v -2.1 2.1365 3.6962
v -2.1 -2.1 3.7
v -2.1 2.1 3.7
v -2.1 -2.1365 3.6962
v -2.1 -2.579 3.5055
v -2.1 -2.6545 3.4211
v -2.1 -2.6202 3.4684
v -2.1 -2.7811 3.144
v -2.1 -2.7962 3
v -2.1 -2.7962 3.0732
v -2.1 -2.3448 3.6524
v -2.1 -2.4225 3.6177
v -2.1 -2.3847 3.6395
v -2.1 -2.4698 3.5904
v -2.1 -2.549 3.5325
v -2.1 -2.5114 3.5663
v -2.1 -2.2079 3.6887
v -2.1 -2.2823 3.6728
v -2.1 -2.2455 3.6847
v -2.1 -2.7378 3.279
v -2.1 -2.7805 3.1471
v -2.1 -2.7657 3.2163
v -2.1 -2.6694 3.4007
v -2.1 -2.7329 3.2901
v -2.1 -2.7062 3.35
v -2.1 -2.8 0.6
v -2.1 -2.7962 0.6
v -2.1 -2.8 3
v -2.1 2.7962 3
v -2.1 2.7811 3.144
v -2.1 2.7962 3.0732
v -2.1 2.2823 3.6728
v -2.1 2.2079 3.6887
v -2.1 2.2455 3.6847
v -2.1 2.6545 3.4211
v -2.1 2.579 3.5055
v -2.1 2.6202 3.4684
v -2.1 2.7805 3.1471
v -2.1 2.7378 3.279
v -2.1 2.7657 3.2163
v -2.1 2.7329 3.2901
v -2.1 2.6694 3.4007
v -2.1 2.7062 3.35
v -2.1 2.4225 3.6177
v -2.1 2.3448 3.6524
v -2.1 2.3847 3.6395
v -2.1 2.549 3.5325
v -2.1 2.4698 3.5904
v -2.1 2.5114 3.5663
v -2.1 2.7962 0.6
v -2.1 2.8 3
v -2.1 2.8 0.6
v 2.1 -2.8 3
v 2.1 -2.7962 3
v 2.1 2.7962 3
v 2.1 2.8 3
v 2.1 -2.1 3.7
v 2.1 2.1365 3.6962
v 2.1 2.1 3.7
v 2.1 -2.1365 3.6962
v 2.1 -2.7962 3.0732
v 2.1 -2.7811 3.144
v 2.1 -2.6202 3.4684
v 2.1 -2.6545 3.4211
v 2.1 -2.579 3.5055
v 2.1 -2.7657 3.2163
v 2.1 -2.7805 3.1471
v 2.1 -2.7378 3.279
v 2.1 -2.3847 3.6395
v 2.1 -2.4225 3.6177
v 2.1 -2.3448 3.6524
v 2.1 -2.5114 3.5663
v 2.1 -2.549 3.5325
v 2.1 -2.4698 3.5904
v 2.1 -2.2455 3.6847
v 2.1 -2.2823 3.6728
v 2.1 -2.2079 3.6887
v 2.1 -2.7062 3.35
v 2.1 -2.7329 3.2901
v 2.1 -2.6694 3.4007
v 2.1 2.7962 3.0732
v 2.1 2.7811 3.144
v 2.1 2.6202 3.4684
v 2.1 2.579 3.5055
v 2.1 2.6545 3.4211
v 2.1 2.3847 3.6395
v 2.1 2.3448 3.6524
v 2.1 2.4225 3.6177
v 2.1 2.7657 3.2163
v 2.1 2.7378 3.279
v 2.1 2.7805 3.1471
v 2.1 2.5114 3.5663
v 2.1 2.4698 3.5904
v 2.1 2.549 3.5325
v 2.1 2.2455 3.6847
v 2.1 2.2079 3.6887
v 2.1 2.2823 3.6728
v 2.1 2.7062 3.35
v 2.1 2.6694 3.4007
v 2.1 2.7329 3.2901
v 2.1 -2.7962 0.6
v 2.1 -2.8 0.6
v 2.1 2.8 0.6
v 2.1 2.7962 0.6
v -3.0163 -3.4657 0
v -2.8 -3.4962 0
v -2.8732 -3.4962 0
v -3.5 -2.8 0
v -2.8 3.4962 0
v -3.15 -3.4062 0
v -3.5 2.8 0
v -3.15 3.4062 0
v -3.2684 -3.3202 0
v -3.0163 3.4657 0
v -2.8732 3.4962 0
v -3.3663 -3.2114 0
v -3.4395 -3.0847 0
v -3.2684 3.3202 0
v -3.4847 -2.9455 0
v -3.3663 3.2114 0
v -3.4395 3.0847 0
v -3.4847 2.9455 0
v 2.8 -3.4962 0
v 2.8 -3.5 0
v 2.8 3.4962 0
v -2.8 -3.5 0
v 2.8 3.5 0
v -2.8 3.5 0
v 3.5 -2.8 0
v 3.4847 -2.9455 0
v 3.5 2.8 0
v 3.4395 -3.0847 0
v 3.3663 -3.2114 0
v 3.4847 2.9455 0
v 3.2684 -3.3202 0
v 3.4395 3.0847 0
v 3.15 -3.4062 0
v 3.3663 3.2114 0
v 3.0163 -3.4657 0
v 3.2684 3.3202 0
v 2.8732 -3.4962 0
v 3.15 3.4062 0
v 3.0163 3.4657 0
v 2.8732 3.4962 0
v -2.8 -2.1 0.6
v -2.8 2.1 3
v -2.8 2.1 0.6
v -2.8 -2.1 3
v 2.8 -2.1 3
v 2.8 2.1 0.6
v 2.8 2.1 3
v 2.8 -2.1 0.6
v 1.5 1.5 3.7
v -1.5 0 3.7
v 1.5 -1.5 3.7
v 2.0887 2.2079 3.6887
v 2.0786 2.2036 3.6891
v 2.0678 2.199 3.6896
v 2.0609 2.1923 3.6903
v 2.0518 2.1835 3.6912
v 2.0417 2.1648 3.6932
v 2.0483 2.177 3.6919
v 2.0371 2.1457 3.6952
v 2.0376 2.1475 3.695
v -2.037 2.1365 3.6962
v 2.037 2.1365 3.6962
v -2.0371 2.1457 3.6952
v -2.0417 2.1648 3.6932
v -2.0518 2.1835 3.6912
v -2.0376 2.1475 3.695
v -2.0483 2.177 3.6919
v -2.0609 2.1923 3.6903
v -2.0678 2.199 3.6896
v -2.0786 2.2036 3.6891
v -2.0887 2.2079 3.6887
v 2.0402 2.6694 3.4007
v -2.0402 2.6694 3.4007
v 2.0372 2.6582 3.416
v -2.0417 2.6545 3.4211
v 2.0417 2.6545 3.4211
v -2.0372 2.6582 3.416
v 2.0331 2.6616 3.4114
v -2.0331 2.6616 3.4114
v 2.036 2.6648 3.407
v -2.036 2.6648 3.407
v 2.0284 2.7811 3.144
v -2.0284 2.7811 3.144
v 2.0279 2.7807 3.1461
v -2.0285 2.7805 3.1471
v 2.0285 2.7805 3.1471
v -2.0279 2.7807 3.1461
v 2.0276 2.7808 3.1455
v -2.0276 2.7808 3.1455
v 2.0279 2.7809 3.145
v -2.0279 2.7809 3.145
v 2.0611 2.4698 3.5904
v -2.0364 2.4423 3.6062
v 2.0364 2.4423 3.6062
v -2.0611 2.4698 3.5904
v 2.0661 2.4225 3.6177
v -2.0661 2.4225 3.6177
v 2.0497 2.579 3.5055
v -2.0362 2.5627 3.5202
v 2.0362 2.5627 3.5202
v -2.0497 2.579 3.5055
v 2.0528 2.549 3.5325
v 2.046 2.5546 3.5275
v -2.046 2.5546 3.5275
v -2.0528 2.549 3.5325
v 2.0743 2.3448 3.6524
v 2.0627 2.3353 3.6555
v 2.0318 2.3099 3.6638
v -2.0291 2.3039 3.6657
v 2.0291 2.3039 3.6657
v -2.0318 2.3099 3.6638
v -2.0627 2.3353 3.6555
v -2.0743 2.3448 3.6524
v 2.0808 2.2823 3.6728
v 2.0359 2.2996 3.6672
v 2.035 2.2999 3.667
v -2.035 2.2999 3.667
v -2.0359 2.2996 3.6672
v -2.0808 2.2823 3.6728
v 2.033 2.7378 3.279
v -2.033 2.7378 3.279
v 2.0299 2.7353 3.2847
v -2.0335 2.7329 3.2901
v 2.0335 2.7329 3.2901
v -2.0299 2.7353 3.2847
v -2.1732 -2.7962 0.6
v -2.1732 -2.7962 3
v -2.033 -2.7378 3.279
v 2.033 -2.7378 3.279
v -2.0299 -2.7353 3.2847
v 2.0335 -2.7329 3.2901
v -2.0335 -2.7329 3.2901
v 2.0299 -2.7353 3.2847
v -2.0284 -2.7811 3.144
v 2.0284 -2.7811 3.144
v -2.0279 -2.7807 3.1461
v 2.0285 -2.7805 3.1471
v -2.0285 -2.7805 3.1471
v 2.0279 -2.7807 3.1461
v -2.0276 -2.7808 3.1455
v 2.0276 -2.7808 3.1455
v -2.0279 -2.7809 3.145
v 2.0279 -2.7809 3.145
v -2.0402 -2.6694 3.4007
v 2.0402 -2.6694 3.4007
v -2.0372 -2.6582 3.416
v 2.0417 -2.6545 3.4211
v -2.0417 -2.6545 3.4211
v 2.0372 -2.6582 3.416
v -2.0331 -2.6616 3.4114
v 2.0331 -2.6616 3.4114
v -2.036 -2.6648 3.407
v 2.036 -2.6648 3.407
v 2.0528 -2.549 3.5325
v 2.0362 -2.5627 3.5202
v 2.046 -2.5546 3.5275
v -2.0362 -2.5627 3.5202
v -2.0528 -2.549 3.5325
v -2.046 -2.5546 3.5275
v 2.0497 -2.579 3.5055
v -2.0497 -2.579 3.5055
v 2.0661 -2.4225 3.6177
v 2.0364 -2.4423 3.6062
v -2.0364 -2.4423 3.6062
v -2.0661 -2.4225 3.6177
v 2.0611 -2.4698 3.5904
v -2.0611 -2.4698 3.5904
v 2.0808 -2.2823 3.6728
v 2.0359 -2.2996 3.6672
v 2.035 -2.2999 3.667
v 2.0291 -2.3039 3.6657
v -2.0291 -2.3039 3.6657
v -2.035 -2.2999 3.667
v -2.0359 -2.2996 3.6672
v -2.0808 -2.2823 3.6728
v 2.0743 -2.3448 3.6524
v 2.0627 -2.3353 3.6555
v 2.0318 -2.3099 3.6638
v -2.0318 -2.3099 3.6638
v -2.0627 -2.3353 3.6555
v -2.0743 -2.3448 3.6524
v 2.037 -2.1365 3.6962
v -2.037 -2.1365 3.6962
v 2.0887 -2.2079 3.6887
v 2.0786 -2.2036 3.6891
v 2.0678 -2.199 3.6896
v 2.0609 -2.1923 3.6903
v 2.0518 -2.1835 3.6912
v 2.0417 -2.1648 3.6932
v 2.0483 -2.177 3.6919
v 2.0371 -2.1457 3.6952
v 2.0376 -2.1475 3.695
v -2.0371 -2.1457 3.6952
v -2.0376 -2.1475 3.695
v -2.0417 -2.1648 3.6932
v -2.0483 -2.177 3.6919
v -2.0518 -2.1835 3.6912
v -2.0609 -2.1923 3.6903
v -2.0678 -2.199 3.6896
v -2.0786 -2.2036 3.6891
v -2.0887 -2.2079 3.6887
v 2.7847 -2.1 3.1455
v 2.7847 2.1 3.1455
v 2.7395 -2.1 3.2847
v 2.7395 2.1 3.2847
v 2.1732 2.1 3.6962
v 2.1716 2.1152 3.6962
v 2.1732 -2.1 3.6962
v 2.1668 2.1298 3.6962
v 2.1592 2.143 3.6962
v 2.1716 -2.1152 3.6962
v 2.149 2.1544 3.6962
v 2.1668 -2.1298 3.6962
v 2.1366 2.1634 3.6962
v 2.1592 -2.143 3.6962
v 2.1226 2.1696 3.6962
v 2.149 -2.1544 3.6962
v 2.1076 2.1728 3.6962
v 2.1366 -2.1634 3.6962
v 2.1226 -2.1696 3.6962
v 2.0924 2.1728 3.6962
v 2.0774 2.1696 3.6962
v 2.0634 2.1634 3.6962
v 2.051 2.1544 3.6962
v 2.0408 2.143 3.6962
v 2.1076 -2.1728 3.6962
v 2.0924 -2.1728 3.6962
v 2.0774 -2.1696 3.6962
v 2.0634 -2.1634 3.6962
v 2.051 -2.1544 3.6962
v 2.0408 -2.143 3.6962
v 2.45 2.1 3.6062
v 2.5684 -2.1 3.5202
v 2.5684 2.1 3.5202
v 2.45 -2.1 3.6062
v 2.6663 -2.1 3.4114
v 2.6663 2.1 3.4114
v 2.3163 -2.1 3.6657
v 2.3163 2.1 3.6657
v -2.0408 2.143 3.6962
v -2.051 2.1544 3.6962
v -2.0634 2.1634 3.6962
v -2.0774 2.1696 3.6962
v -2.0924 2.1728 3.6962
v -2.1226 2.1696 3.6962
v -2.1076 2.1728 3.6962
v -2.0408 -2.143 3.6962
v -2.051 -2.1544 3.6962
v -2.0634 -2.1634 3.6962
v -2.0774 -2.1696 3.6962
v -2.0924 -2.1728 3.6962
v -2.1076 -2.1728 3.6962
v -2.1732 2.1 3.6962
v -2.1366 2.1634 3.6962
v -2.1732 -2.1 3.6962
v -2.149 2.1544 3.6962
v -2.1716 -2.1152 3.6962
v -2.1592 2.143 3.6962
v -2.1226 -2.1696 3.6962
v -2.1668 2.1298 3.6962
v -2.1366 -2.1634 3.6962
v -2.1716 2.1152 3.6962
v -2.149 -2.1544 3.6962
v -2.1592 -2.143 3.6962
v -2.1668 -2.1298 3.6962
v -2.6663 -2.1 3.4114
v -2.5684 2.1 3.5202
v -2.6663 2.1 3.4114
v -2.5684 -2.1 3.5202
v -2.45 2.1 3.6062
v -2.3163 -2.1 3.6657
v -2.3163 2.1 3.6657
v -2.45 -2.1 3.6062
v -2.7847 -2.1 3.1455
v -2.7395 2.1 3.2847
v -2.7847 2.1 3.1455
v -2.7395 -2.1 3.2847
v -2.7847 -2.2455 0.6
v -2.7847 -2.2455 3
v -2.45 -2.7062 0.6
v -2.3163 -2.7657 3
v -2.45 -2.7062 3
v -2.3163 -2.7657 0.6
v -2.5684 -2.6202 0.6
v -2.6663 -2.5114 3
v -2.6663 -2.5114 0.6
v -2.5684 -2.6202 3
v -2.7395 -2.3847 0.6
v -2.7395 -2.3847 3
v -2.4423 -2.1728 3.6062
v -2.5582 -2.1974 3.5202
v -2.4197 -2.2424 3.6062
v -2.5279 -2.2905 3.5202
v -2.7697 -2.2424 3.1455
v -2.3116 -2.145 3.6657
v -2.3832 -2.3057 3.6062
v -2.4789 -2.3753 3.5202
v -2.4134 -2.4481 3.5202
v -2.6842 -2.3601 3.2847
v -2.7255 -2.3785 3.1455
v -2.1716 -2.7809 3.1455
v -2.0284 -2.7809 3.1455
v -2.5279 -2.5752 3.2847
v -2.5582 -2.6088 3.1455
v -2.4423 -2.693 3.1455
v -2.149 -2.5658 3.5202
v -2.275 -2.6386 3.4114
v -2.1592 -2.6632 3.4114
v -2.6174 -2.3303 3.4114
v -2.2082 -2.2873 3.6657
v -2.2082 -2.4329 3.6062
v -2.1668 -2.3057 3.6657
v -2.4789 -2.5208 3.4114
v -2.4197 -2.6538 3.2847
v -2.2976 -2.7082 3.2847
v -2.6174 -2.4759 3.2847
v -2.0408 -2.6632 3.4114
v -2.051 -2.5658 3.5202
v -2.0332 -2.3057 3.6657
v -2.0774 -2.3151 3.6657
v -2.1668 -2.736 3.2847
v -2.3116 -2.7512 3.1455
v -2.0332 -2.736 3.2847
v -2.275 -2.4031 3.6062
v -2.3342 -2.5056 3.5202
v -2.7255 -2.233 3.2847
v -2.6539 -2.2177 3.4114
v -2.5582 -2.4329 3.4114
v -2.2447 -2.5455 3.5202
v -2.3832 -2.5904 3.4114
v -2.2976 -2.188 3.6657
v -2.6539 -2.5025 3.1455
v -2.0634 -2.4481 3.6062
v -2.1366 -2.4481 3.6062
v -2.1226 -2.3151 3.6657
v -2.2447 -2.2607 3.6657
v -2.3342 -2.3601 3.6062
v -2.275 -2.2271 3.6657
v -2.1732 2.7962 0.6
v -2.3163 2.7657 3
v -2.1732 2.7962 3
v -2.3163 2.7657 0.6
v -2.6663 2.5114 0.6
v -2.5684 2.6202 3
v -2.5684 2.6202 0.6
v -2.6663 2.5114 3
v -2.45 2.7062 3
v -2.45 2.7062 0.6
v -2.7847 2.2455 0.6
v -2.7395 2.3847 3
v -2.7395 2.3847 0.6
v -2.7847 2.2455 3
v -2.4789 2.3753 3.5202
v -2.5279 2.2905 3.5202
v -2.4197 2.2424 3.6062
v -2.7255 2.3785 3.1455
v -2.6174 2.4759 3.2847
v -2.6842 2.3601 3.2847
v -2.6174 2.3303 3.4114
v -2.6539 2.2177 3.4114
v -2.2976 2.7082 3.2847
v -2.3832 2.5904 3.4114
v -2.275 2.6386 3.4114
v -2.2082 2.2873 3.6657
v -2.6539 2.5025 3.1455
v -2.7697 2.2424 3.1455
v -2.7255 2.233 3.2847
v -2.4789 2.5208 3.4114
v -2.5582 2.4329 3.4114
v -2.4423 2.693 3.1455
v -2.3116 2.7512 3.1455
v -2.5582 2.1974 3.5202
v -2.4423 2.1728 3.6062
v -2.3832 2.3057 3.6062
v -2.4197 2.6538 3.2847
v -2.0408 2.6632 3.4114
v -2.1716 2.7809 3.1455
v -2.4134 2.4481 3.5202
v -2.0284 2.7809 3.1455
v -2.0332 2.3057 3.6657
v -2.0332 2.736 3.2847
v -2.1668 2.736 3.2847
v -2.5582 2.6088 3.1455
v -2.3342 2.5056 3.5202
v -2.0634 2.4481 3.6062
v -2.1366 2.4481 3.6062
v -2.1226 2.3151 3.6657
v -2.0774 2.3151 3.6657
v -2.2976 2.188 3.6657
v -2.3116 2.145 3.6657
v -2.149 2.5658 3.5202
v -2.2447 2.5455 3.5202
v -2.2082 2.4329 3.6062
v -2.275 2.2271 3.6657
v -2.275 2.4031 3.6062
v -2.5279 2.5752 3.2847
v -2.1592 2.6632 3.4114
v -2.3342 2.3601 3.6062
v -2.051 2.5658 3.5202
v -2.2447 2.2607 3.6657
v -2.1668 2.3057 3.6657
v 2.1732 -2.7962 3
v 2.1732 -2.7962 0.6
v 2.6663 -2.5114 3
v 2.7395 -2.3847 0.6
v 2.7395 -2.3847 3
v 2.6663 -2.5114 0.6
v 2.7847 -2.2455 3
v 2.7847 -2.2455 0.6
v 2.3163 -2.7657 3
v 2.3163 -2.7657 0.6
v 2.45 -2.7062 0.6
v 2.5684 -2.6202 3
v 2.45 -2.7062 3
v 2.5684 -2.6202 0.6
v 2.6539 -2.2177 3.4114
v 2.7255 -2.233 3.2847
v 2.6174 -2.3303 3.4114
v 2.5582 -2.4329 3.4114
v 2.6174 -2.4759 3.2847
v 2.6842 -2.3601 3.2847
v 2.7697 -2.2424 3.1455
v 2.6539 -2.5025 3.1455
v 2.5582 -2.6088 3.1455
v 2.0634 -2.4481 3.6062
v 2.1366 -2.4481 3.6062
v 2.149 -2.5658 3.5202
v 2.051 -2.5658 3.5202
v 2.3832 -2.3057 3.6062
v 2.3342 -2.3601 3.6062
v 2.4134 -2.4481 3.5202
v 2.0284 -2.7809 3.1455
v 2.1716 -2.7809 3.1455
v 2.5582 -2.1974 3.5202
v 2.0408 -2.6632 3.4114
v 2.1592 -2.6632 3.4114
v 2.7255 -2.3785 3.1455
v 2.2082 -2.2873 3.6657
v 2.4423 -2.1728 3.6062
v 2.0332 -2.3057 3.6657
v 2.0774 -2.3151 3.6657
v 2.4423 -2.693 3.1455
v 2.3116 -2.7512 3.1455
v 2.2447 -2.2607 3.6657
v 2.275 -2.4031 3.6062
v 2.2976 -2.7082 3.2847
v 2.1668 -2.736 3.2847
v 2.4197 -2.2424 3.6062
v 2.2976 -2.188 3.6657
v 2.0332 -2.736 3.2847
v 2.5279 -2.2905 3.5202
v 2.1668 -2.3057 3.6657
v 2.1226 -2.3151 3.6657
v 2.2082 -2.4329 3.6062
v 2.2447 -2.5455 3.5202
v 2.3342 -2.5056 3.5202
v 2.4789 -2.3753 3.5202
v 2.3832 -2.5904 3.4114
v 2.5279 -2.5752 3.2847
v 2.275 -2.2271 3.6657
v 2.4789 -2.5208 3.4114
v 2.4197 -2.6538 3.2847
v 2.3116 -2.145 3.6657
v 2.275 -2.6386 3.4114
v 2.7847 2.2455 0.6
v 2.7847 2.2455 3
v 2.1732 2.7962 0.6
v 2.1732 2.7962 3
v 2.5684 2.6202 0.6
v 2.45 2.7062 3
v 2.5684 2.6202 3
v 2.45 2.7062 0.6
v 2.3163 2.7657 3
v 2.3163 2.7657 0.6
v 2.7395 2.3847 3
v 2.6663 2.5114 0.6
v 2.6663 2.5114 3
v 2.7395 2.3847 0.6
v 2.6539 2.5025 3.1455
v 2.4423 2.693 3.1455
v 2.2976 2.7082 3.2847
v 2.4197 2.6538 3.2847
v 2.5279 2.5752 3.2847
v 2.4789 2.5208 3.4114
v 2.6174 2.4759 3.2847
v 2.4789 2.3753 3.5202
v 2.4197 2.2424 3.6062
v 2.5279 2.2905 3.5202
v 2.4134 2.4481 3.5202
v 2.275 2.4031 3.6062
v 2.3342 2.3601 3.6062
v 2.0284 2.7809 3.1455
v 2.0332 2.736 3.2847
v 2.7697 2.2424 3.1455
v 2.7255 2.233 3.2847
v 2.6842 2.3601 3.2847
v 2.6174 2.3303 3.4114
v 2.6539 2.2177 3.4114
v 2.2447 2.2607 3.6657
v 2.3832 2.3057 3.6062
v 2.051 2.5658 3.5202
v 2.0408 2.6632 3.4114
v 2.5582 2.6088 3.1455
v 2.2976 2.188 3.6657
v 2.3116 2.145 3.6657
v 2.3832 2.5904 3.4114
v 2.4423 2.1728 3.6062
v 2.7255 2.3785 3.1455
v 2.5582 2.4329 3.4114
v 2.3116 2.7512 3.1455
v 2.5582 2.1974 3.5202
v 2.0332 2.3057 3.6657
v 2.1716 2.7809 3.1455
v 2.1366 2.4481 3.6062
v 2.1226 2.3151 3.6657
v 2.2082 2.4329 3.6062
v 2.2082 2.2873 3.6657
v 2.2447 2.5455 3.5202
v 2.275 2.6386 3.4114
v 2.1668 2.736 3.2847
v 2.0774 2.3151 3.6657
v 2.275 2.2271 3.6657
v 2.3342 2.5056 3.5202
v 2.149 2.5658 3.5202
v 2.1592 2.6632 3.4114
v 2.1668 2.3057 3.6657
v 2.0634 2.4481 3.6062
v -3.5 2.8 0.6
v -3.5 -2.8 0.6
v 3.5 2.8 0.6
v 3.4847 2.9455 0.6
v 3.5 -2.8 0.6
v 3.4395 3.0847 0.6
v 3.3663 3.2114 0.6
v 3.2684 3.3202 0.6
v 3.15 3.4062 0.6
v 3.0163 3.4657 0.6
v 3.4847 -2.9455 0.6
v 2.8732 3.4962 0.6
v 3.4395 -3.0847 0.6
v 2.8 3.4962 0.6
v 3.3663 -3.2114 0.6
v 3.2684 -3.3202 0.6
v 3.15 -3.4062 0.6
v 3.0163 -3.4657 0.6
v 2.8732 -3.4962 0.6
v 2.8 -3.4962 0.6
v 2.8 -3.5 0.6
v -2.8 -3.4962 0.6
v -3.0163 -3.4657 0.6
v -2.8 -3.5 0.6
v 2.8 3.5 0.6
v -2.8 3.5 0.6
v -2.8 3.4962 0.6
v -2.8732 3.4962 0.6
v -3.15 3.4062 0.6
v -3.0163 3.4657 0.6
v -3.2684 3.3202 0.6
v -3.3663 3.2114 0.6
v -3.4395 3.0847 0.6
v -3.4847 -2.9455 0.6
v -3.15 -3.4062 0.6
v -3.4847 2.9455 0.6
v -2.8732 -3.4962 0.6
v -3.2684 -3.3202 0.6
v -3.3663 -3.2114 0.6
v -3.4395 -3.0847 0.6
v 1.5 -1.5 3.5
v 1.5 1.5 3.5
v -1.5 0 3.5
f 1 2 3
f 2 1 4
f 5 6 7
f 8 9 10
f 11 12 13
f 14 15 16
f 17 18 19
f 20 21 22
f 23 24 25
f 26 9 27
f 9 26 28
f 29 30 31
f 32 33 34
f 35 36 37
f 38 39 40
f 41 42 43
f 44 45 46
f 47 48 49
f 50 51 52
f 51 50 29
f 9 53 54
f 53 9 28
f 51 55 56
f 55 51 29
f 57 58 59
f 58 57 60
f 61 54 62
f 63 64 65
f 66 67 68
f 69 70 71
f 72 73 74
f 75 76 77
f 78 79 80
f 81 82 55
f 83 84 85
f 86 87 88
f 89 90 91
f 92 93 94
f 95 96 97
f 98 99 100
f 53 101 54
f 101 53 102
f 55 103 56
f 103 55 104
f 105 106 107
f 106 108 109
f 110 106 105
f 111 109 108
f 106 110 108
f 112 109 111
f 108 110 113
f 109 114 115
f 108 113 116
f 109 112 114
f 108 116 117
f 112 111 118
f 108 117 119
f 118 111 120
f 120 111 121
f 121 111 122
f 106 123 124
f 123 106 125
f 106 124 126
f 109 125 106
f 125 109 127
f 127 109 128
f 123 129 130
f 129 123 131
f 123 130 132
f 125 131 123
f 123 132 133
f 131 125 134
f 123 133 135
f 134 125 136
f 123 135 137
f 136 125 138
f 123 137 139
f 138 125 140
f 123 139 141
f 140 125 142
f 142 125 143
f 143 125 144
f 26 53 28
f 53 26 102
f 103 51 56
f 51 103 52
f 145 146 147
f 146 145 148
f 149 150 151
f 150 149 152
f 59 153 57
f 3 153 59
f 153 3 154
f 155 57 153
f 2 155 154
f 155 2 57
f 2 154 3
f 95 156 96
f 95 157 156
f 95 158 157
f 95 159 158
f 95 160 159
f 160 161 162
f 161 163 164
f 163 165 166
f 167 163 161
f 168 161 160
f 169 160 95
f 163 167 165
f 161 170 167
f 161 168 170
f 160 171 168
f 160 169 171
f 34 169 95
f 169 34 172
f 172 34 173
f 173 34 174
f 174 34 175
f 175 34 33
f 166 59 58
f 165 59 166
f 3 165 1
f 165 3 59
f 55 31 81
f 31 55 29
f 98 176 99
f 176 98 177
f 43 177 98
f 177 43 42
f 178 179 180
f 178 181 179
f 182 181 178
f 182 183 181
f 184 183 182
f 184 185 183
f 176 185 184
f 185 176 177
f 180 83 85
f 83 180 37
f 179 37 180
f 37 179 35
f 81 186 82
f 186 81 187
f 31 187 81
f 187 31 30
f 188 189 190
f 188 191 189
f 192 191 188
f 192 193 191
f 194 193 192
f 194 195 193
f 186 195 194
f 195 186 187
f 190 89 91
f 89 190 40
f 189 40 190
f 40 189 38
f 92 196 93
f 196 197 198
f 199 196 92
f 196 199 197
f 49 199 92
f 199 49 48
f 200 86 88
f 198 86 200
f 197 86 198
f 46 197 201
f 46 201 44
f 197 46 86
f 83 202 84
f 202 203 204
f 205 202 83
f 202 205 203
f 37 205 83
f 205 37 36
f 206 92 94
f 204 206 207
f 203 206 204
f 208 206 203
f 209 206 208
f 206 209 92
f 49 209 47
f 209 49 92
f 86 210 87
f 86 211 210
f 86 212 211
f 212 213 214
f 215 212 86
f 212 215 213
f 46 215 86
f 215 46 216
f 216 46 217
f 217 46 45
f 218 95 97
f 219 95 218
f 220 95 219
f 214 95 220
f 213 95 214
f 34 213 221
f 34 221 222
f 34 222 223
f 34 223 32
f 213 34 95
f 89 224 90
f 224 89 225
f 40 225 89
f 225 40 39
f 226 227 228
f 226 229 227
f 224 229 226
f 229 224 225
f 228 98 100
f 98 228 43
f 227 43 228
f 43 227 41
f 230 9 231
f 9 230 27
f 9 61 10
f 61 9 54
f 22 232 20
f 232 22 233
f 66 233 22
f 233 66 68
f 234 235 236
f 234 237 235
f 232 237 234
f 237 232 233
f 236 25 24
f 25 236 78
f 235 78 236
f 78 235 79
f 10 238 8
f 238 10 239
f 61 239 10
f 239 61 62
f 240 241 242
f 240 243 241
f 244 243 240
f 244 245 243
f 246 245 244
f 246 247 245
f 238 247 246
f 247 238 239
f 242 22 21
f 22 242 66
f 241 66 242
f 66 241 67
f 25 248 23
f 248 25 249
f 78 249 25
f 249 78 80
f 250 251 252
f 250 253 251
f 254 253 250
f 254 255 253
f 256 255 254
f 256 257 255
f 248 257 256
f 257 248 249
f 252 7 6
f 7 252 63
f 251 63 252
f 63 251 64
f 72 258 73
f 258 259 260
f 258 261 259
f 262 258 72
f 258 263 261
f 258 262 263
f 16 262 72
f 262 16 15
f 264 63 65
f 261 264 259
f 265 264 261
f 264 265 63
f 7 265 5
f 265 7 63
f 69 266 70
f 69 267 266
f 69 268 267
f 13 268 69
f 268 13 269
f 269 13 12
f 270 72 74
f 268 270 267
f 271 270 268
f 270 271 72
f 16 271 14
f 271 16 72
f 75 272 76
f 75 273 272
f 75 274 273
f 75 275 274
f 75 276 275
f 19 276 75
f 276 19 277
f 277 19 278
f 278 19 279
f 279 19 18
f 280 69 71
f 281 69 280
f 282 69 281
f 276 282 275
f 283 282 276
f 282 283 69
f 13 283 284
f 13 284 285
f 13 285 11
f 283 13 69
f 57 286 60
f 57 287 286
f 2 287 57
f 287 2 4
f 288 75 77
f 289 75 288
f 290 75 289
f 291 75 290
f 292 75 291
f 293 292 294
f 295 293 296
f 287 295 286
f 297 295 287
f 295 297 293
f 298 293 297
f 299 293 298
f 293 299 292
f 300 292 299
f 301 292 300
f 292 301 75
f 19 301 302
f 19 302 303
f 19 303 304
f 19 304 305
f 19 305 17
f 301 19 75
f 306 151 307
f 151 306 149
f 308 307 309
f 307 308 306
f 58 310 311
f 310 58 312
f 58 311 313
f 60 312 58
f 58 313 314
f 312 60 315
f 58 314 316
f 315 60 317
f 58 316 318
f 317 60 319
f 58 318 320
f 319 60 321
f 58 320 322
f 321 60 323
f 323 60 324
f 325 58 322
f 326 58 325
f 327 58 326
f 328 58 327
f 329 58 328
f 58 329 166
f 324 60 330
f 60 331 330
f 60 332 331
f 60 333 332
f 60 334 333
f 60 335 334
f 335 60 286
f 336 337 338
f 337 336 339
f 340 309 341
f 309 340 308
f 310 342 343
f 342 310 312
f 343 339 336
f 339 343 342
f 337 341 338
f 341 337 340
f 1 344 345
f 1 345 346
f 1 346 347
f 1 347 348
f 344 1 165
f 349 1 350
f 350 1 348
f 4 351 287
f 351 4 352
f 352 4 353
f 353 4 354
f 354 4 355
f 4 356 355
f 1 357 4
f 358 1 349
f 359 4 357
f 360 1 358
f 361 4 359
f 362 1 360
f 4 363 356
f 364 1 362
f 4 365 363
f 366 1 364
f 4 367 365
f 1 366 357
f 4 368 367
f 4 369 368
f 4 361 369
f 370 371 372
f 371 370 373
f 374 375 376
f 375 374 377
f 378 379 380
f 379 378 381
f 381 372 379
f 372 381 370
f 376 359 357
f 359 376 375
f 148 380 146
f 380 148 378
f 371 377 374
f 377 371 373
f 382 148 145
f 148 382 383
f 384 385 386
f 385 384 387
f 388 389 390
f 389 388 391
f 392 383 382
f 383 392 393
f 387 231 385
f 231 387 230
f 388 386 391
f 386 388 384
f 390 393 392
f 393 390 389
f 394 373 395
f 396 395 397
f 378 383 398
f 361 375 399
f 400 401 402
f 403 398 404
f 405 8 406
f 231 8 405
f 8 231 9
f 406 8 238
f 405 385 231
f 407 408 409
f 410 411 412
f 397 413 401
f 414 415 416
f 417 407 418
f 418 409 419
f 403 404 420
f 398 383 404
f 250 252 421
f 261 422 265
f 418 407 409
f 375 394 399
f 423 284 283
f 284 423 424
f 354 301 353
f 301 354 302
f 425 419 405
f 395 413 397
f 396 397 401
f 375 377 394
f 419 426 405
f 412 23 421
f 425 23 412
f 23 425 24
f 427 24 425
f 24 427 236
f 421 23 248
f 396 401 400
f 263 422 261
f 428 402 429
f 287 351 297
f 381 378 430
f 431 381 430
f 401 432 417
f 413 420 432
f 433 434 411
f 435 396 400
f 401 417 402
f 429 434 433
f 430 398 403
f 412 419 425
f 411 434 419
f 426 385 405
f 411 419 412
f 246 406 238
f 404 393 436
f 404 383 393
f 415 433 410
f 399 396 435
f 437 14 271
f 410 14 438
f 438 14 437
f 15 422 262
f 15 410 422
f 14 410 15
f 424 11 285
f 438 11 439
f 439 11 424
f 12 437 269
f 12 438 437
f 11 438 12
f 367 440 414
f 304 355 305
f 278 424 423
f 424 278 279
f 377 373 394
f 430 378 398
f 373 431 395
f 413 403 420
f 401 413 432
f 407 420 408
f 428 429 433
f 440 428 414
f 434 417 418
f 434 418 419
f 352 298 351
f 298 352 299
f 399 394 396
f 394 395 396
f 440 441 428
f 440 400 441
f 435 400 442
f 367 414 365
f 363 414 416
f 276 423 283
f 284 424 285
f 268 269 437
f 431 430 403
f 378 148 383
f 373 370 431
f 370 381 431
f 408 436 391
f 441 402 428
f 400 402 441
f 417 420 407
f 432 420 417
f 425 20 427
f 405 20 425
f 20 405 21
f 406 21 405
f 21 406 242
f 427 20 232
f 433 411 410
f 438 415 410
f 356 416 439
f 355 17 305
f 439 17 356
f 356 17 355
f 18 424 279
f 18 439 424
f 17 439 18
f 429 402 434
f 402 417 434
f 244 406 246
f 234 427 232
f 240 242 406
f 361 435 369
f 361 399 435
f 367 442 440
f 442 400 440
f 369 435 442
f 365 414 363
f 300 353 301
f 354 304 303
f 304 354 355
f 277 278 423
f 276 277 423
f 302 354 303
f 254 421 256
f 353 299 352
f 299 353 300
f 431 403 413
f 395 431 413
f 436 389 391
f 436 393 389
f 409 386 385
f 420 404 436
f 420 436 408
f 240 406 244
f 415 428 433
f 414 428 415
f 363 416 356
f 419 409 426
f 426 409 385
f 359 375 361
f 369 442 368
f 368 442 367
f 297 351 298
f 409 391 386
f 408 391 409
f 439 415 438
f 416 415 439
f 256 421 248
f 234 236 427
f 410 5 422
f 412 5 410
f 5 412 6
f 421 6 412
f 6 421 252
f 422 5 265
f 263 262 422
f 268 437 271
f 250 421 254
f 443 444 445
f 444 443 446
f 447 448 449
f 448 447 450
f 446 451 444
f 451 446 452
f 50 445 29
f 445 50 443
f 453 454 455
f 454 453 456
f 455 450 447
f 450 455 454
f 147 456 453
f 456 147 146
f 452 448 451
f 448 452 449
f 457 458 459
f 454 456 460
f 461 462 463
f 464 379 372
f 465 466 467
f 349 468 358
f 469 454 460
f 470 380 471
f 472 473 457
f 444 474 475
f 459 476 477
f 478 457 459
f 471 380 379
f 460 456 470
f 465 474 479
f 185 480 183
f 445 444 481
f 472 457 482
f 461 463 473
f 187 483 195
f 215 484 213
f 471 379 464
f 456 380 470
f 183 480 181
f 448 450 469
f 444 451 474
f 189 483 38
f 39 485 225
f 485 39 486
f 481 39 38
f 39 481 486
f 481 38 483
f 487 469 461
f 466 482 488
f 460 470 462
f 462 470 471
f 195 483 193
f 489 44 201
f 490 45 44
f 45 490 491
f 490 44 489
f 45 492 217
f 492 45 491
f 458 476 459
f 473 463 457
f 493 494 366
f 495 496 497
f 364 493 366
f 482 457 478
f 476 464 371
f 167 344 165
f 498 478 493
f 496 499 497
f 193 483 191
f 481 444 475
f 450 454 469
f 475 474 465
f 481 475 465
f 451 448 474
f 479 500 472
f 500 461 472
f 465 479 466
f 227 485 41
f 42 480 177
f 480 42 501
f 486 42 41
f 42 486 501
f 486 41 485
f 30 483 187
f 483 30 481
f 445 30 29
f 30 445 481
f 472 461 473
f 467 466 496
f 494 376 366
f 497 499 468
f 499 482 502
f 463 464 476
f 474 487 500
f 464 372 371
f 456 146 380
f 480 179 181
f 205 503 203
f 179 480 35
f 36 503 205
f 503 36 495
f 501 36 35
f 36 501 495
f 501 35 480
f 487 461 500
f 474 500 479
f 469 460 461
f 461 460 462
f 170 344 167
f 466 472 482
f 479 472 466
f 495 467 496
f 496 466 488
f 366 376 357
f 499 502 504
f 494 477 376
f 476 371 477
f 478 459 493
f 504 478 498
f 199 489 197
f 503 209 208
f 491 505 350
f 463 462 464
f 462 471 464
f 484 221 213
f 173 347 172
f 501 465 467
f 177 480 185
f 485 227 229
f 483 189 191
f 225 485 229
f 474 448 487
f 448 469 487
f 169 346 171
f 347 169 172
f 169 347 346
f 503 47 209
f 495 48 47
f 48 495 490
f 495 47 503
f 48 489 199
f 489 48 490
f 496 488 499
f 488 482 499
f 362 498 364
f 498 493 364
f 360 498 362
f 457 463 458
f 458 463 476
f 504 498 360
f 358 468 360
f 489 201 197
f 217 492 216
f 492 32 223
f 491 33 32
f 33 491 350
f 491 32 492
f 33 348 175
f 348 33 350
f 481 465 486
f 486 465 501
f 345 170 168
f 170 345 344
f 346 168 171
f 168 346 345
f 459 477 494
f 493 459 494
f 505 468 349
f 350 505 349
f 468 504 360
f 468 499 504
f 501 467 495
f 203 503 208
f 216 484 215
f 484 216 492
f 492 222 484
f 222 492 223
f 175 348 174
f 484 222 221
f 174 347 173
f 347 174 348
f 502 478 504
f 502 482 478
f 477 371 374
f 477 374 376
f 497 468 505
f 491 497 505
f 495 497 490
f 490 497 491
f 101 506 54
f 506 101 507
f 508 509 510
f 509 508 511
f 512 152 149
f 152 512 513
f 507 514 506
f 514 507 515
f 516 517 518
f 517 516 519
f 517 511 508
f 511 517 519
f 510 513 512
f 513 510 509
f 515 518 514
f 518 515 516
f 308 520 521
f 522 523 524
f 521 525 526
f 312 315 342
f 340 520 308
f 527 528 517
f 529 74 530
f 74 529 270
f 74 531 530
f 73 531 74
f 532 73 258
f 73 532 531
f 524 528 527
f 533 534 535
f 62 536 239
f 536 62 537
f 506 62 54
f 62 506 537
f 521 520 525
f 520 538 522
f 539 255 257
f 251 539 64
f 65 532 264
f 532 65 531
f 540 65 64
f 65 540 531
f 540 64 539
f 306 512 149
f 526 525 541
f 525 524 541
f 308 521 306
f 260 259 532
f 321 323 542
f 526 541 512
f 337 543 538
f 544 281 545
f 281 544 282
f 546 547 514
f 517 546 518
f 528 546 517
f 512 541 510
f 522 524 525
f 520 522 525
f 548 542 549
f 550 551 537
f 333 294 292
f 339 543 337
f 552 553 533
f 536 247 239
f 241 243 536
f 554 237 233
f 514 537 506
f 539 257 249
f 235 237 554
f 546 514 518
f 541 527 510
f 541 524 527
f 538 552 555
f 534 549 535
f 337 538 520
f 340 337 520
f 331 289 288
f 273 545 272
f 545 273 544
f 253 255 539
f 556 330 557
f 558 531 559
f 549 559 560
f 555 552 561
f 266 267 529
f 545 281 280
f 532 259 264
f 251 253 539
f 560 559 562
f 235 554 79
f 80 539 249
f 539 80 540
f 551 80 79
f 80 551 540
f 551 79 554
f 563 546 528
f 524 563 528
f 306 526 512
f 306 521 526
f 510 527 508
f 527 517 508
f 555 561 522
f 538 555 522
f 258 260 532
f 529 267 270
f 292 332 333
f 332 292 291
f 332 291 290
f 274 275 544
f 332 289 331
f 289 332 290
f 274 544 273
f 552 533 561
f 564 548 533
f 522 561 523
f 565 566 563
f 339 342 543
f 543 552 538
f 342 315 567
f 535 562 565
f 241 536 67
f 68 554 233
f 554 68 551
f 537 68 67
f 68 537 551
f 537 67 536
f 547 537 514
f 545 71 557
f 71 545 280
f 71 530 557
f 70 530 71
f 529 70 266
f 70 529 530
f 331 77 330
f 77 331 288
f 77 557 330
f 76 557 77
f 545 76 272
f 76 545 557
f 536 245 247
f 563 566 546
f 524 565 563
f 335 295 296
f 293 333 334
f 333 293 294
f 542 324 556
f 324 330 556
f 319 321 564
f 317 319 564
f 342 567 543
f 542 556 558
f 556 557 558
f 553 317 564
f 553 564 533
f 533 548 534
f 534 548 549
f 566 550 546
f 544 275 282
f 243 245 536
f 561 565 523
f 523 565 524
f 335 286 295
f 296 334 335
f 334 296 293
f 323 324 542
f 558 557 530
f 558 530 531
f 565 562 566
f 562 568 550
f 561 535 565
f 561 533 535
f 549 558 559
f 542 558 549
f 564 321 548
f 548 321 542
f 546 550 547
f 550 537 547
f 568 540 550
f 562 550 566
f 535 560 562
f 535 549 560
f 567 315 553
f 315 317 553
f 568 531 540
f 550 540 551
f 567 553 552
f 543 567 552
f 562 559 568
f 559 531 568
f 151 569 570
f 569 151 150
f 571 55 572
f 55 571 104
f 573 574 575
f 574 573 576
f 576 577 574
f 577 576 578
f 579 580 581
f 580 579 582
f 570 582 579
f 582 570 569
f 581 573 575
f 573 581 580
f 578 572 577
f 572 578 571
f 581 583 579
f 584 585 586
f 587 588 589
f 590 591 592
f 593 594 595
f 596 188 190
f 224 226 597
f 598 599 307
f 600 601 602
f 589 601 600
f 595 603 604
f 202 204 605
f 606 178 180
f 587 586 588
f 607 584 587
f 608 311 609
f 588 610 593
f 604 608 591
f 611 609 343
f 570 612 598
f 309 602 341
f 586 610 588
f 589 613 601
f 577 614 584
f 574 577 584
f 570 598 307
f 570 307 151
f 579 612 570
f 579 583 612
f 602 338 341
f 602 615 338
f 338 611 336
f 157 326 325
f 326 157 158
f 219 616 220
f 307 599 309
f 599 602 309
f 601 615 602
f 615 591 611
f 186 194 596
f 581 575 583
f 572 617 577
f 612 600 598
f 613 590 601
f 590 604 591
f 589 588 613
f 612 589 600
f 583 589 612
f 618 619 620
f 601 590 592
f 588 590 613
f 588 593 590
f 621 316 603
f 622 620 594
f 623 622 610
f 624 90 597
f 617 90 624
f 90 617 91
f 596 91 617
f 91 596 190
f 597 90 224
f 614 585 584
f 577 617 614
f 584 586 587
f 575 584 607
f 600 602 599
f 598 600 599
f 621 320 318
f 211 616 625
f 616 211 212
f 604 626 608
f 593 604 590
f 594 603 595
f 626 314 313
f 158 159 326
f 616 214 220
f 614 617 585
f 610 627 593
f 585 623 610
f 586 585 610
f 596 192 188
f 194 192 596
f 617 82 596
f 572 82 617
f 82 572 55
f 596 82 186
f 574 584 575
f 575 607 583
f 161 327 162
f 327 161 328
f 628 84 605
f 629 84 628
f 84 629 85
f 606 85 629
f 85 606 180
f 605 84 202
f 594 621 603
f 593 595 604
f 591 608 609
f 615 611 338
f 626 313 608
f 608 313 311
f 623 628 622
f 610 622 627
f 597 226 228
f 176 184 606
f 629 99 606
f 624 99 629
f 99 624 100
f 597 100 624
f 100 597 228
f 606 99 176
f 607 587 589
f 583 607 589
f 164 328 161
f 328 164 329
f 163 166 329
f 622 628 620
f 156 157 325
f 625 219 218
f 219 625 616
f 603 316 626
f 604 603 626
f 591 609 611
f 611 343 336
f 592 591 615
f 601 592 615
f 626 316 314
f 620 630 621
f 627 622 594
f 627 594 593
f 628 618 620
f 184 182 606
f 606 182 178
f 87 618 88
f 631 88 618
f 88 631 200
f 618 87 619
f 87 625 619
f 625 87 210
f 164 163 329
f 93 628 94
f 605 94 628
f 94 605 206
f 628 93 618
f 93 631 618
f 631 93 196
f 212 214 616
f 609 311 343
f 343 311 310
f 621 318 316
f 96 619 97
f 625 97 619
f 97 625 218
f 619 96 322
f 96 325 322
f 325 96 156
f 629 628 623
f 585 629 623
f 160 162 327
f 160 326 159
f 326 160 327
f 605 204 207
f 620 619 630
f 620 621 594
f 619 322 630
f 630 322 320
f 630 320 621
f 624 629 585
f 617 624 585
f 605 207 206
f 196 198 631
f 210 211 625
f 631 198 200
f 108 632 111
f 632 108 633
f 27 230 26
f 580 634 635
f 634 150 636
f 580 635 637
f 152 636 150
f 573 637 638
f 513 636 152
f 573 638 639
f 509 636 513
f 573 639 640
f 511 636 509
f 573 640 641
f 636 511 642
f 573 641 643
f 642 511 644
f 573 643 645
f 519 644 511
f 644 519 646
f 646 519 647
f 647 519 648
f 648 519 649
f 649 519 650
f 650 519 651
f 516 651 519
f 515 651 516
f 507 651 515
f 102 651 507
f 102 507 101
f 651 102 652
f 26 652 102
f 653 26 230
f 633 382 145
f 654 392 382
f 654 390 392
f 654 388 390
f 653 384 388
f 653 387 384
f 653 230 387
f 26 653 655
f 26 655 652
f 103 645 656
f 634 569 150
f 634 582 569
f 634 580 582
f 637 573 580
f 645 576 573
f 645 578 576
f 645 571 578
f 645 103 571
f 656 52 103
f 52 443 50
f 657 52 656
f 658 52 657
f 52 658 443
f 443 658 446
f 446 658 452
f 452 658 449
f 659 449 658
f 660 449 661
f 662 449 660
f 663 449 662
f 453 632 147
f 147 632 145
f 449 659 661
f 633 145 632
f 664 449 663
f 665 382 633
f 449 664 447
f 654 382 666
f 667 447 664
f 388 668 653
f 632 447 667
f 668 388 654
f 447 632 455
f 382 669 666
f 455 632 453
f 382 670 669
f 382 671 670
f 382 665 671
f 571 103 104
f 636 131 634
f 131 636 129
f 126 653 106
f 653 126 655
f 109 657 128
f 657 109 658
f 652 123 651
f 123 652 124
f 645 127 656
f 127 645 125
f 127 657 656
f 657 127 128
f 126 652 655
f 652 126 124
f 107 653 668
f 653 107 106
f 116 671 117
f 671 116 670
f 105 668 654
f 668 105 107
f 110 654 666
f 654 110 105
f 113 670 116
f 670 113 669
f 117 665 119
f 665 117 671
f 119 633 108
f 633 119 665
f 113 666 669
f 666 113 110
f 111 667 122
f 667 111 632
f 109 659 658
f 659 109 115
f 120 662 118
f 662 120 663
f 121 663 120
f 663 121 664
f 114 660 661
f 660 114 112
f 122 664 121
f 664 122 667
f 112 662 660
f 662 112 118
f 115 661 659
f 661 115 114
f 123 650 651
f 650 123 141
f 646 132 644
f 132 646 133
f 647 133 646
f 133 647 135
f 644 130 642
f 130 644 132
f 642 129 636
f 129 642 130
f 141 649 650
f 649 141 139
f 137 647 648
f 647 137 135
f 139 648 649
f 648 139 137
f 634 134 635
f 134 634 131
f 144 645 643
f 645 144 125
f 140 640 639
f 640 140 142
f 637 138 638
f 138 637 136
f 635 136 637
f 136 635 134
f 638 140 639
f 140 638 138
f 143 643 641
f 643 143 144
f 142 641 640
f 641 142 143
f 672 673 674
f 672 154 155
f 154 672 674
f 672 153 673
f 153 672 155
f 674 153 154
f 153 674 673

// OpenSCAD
// Button for shield 4-key

$fn=30;          // precision of rendering

$round=0.7;      // rounding corners
$size=5.6;       // edge size
$high=3.0;       // height 
$frame=1.4;      // lower frame (bottom width is $size + $frame)
$frameHigh=0.6;  // height frame
//$holeHigh=2.5; 
//$hole=2.3;     


difference() {
    union() {
        translate([0,0,$high/2])
            cube([$size-2*$round,$size,$high],true);
        translate([0,0,$high/2])
            cube([$size,$size-2*$round,$high],true);
        translate([0,0,$high])
            cube([$size-2*$round,$size-2*$round,2*$round],true);
        // rounded horizontal edges
        translate([0,$size/2-$round,$high]) rotate(90,[0,1,0]) 
            cylinder($size-2*$round,$round,$round, center=true); 
        translate([0,-$size/2+$round,$high]) rotate(90,[0,1,0]) 
            cylinder($size-2*$round,$round,$round, center=true); 
        translate([$size/2-$round,0,$high]) rotate(90,[1,0,0]) 
            cylinder($size-2*$round,$round,$round, center=true); 
        translate([-$size/2+$round,0,$high]) rotate(90,[1,0,0]) 
            cylinder($size-2*$round,$round,$round, center=true); 
        // rounded corners
        translate([-$size/2+$round,-$size/2+$round,$high/2]) 
            cylinder($high,$round,$round,true);
        translate([-$size/2+$round,-$size/2+$round,$high]) 
            sphere($round); 
        translate([-$size/2+$round,$size/2-$round,$high/2]) 
            cylinder($high,$round,$round, center=true); 
        translate([-$size/2+$round,$size/2-$round,$high]) 
            sphere($round); 
        translate([$size/2-$round,-$size/2+$round,$high/2]) 
            cylinder($high,$round,$round, center=true); 
        translate([$size/2-$round,-$size/2+$round,$high]) 
            sphere($round); 
        translate([$size/2-$round,$size/2-$round,$high/2]) 
            cylinder($high,$round,$round, center=true); 
        translate([$size/2-$round,$size/2-$round,$high]) 
            sphere($round); 
        // lower frame
        translate([0,0,$frameHigh/2])
            cube([$size+$frame,$size,$frameHigh],true);    
        translate([0,0,$frameHigh/2])
            cube([$size,$size+$frame,$frameHigh],true);    
        translate([-($size+$frame)/2+$frame/2,-($size+$frame)/2+$frame/2,$frameHigh/2]) 
            cylinder($frameHigh,$frame/2,$frame/2,true);            
        translate([-($size+$frame)/2+$frame/2,+($size+$frame)/2-$frame/2,$frameHigh/2]) 
            cylinder($frameHigh,$frame/2,$frame/2,true);            
        translate([+($size+$frame)/2-$frame/2,-($size+$frame)/2+$frame/2,$frameHigh/2]) 
            cylinder($frameHigh,$frame/2,$frame/2,true);            
        translate([+($size+$frame)/2-$frame/2,+($size+$frame)/2-$frame/2,$frameHigh/2]) 
            cylinder($frameHigh,$frame/2,$frame/2,true);            
    };

    translate([0,0,$high+0.5])
        linear_extrude(1) polygon(points=[[-1.5,0],[1.5,1.5],[1.5,-1.5]]);
};
